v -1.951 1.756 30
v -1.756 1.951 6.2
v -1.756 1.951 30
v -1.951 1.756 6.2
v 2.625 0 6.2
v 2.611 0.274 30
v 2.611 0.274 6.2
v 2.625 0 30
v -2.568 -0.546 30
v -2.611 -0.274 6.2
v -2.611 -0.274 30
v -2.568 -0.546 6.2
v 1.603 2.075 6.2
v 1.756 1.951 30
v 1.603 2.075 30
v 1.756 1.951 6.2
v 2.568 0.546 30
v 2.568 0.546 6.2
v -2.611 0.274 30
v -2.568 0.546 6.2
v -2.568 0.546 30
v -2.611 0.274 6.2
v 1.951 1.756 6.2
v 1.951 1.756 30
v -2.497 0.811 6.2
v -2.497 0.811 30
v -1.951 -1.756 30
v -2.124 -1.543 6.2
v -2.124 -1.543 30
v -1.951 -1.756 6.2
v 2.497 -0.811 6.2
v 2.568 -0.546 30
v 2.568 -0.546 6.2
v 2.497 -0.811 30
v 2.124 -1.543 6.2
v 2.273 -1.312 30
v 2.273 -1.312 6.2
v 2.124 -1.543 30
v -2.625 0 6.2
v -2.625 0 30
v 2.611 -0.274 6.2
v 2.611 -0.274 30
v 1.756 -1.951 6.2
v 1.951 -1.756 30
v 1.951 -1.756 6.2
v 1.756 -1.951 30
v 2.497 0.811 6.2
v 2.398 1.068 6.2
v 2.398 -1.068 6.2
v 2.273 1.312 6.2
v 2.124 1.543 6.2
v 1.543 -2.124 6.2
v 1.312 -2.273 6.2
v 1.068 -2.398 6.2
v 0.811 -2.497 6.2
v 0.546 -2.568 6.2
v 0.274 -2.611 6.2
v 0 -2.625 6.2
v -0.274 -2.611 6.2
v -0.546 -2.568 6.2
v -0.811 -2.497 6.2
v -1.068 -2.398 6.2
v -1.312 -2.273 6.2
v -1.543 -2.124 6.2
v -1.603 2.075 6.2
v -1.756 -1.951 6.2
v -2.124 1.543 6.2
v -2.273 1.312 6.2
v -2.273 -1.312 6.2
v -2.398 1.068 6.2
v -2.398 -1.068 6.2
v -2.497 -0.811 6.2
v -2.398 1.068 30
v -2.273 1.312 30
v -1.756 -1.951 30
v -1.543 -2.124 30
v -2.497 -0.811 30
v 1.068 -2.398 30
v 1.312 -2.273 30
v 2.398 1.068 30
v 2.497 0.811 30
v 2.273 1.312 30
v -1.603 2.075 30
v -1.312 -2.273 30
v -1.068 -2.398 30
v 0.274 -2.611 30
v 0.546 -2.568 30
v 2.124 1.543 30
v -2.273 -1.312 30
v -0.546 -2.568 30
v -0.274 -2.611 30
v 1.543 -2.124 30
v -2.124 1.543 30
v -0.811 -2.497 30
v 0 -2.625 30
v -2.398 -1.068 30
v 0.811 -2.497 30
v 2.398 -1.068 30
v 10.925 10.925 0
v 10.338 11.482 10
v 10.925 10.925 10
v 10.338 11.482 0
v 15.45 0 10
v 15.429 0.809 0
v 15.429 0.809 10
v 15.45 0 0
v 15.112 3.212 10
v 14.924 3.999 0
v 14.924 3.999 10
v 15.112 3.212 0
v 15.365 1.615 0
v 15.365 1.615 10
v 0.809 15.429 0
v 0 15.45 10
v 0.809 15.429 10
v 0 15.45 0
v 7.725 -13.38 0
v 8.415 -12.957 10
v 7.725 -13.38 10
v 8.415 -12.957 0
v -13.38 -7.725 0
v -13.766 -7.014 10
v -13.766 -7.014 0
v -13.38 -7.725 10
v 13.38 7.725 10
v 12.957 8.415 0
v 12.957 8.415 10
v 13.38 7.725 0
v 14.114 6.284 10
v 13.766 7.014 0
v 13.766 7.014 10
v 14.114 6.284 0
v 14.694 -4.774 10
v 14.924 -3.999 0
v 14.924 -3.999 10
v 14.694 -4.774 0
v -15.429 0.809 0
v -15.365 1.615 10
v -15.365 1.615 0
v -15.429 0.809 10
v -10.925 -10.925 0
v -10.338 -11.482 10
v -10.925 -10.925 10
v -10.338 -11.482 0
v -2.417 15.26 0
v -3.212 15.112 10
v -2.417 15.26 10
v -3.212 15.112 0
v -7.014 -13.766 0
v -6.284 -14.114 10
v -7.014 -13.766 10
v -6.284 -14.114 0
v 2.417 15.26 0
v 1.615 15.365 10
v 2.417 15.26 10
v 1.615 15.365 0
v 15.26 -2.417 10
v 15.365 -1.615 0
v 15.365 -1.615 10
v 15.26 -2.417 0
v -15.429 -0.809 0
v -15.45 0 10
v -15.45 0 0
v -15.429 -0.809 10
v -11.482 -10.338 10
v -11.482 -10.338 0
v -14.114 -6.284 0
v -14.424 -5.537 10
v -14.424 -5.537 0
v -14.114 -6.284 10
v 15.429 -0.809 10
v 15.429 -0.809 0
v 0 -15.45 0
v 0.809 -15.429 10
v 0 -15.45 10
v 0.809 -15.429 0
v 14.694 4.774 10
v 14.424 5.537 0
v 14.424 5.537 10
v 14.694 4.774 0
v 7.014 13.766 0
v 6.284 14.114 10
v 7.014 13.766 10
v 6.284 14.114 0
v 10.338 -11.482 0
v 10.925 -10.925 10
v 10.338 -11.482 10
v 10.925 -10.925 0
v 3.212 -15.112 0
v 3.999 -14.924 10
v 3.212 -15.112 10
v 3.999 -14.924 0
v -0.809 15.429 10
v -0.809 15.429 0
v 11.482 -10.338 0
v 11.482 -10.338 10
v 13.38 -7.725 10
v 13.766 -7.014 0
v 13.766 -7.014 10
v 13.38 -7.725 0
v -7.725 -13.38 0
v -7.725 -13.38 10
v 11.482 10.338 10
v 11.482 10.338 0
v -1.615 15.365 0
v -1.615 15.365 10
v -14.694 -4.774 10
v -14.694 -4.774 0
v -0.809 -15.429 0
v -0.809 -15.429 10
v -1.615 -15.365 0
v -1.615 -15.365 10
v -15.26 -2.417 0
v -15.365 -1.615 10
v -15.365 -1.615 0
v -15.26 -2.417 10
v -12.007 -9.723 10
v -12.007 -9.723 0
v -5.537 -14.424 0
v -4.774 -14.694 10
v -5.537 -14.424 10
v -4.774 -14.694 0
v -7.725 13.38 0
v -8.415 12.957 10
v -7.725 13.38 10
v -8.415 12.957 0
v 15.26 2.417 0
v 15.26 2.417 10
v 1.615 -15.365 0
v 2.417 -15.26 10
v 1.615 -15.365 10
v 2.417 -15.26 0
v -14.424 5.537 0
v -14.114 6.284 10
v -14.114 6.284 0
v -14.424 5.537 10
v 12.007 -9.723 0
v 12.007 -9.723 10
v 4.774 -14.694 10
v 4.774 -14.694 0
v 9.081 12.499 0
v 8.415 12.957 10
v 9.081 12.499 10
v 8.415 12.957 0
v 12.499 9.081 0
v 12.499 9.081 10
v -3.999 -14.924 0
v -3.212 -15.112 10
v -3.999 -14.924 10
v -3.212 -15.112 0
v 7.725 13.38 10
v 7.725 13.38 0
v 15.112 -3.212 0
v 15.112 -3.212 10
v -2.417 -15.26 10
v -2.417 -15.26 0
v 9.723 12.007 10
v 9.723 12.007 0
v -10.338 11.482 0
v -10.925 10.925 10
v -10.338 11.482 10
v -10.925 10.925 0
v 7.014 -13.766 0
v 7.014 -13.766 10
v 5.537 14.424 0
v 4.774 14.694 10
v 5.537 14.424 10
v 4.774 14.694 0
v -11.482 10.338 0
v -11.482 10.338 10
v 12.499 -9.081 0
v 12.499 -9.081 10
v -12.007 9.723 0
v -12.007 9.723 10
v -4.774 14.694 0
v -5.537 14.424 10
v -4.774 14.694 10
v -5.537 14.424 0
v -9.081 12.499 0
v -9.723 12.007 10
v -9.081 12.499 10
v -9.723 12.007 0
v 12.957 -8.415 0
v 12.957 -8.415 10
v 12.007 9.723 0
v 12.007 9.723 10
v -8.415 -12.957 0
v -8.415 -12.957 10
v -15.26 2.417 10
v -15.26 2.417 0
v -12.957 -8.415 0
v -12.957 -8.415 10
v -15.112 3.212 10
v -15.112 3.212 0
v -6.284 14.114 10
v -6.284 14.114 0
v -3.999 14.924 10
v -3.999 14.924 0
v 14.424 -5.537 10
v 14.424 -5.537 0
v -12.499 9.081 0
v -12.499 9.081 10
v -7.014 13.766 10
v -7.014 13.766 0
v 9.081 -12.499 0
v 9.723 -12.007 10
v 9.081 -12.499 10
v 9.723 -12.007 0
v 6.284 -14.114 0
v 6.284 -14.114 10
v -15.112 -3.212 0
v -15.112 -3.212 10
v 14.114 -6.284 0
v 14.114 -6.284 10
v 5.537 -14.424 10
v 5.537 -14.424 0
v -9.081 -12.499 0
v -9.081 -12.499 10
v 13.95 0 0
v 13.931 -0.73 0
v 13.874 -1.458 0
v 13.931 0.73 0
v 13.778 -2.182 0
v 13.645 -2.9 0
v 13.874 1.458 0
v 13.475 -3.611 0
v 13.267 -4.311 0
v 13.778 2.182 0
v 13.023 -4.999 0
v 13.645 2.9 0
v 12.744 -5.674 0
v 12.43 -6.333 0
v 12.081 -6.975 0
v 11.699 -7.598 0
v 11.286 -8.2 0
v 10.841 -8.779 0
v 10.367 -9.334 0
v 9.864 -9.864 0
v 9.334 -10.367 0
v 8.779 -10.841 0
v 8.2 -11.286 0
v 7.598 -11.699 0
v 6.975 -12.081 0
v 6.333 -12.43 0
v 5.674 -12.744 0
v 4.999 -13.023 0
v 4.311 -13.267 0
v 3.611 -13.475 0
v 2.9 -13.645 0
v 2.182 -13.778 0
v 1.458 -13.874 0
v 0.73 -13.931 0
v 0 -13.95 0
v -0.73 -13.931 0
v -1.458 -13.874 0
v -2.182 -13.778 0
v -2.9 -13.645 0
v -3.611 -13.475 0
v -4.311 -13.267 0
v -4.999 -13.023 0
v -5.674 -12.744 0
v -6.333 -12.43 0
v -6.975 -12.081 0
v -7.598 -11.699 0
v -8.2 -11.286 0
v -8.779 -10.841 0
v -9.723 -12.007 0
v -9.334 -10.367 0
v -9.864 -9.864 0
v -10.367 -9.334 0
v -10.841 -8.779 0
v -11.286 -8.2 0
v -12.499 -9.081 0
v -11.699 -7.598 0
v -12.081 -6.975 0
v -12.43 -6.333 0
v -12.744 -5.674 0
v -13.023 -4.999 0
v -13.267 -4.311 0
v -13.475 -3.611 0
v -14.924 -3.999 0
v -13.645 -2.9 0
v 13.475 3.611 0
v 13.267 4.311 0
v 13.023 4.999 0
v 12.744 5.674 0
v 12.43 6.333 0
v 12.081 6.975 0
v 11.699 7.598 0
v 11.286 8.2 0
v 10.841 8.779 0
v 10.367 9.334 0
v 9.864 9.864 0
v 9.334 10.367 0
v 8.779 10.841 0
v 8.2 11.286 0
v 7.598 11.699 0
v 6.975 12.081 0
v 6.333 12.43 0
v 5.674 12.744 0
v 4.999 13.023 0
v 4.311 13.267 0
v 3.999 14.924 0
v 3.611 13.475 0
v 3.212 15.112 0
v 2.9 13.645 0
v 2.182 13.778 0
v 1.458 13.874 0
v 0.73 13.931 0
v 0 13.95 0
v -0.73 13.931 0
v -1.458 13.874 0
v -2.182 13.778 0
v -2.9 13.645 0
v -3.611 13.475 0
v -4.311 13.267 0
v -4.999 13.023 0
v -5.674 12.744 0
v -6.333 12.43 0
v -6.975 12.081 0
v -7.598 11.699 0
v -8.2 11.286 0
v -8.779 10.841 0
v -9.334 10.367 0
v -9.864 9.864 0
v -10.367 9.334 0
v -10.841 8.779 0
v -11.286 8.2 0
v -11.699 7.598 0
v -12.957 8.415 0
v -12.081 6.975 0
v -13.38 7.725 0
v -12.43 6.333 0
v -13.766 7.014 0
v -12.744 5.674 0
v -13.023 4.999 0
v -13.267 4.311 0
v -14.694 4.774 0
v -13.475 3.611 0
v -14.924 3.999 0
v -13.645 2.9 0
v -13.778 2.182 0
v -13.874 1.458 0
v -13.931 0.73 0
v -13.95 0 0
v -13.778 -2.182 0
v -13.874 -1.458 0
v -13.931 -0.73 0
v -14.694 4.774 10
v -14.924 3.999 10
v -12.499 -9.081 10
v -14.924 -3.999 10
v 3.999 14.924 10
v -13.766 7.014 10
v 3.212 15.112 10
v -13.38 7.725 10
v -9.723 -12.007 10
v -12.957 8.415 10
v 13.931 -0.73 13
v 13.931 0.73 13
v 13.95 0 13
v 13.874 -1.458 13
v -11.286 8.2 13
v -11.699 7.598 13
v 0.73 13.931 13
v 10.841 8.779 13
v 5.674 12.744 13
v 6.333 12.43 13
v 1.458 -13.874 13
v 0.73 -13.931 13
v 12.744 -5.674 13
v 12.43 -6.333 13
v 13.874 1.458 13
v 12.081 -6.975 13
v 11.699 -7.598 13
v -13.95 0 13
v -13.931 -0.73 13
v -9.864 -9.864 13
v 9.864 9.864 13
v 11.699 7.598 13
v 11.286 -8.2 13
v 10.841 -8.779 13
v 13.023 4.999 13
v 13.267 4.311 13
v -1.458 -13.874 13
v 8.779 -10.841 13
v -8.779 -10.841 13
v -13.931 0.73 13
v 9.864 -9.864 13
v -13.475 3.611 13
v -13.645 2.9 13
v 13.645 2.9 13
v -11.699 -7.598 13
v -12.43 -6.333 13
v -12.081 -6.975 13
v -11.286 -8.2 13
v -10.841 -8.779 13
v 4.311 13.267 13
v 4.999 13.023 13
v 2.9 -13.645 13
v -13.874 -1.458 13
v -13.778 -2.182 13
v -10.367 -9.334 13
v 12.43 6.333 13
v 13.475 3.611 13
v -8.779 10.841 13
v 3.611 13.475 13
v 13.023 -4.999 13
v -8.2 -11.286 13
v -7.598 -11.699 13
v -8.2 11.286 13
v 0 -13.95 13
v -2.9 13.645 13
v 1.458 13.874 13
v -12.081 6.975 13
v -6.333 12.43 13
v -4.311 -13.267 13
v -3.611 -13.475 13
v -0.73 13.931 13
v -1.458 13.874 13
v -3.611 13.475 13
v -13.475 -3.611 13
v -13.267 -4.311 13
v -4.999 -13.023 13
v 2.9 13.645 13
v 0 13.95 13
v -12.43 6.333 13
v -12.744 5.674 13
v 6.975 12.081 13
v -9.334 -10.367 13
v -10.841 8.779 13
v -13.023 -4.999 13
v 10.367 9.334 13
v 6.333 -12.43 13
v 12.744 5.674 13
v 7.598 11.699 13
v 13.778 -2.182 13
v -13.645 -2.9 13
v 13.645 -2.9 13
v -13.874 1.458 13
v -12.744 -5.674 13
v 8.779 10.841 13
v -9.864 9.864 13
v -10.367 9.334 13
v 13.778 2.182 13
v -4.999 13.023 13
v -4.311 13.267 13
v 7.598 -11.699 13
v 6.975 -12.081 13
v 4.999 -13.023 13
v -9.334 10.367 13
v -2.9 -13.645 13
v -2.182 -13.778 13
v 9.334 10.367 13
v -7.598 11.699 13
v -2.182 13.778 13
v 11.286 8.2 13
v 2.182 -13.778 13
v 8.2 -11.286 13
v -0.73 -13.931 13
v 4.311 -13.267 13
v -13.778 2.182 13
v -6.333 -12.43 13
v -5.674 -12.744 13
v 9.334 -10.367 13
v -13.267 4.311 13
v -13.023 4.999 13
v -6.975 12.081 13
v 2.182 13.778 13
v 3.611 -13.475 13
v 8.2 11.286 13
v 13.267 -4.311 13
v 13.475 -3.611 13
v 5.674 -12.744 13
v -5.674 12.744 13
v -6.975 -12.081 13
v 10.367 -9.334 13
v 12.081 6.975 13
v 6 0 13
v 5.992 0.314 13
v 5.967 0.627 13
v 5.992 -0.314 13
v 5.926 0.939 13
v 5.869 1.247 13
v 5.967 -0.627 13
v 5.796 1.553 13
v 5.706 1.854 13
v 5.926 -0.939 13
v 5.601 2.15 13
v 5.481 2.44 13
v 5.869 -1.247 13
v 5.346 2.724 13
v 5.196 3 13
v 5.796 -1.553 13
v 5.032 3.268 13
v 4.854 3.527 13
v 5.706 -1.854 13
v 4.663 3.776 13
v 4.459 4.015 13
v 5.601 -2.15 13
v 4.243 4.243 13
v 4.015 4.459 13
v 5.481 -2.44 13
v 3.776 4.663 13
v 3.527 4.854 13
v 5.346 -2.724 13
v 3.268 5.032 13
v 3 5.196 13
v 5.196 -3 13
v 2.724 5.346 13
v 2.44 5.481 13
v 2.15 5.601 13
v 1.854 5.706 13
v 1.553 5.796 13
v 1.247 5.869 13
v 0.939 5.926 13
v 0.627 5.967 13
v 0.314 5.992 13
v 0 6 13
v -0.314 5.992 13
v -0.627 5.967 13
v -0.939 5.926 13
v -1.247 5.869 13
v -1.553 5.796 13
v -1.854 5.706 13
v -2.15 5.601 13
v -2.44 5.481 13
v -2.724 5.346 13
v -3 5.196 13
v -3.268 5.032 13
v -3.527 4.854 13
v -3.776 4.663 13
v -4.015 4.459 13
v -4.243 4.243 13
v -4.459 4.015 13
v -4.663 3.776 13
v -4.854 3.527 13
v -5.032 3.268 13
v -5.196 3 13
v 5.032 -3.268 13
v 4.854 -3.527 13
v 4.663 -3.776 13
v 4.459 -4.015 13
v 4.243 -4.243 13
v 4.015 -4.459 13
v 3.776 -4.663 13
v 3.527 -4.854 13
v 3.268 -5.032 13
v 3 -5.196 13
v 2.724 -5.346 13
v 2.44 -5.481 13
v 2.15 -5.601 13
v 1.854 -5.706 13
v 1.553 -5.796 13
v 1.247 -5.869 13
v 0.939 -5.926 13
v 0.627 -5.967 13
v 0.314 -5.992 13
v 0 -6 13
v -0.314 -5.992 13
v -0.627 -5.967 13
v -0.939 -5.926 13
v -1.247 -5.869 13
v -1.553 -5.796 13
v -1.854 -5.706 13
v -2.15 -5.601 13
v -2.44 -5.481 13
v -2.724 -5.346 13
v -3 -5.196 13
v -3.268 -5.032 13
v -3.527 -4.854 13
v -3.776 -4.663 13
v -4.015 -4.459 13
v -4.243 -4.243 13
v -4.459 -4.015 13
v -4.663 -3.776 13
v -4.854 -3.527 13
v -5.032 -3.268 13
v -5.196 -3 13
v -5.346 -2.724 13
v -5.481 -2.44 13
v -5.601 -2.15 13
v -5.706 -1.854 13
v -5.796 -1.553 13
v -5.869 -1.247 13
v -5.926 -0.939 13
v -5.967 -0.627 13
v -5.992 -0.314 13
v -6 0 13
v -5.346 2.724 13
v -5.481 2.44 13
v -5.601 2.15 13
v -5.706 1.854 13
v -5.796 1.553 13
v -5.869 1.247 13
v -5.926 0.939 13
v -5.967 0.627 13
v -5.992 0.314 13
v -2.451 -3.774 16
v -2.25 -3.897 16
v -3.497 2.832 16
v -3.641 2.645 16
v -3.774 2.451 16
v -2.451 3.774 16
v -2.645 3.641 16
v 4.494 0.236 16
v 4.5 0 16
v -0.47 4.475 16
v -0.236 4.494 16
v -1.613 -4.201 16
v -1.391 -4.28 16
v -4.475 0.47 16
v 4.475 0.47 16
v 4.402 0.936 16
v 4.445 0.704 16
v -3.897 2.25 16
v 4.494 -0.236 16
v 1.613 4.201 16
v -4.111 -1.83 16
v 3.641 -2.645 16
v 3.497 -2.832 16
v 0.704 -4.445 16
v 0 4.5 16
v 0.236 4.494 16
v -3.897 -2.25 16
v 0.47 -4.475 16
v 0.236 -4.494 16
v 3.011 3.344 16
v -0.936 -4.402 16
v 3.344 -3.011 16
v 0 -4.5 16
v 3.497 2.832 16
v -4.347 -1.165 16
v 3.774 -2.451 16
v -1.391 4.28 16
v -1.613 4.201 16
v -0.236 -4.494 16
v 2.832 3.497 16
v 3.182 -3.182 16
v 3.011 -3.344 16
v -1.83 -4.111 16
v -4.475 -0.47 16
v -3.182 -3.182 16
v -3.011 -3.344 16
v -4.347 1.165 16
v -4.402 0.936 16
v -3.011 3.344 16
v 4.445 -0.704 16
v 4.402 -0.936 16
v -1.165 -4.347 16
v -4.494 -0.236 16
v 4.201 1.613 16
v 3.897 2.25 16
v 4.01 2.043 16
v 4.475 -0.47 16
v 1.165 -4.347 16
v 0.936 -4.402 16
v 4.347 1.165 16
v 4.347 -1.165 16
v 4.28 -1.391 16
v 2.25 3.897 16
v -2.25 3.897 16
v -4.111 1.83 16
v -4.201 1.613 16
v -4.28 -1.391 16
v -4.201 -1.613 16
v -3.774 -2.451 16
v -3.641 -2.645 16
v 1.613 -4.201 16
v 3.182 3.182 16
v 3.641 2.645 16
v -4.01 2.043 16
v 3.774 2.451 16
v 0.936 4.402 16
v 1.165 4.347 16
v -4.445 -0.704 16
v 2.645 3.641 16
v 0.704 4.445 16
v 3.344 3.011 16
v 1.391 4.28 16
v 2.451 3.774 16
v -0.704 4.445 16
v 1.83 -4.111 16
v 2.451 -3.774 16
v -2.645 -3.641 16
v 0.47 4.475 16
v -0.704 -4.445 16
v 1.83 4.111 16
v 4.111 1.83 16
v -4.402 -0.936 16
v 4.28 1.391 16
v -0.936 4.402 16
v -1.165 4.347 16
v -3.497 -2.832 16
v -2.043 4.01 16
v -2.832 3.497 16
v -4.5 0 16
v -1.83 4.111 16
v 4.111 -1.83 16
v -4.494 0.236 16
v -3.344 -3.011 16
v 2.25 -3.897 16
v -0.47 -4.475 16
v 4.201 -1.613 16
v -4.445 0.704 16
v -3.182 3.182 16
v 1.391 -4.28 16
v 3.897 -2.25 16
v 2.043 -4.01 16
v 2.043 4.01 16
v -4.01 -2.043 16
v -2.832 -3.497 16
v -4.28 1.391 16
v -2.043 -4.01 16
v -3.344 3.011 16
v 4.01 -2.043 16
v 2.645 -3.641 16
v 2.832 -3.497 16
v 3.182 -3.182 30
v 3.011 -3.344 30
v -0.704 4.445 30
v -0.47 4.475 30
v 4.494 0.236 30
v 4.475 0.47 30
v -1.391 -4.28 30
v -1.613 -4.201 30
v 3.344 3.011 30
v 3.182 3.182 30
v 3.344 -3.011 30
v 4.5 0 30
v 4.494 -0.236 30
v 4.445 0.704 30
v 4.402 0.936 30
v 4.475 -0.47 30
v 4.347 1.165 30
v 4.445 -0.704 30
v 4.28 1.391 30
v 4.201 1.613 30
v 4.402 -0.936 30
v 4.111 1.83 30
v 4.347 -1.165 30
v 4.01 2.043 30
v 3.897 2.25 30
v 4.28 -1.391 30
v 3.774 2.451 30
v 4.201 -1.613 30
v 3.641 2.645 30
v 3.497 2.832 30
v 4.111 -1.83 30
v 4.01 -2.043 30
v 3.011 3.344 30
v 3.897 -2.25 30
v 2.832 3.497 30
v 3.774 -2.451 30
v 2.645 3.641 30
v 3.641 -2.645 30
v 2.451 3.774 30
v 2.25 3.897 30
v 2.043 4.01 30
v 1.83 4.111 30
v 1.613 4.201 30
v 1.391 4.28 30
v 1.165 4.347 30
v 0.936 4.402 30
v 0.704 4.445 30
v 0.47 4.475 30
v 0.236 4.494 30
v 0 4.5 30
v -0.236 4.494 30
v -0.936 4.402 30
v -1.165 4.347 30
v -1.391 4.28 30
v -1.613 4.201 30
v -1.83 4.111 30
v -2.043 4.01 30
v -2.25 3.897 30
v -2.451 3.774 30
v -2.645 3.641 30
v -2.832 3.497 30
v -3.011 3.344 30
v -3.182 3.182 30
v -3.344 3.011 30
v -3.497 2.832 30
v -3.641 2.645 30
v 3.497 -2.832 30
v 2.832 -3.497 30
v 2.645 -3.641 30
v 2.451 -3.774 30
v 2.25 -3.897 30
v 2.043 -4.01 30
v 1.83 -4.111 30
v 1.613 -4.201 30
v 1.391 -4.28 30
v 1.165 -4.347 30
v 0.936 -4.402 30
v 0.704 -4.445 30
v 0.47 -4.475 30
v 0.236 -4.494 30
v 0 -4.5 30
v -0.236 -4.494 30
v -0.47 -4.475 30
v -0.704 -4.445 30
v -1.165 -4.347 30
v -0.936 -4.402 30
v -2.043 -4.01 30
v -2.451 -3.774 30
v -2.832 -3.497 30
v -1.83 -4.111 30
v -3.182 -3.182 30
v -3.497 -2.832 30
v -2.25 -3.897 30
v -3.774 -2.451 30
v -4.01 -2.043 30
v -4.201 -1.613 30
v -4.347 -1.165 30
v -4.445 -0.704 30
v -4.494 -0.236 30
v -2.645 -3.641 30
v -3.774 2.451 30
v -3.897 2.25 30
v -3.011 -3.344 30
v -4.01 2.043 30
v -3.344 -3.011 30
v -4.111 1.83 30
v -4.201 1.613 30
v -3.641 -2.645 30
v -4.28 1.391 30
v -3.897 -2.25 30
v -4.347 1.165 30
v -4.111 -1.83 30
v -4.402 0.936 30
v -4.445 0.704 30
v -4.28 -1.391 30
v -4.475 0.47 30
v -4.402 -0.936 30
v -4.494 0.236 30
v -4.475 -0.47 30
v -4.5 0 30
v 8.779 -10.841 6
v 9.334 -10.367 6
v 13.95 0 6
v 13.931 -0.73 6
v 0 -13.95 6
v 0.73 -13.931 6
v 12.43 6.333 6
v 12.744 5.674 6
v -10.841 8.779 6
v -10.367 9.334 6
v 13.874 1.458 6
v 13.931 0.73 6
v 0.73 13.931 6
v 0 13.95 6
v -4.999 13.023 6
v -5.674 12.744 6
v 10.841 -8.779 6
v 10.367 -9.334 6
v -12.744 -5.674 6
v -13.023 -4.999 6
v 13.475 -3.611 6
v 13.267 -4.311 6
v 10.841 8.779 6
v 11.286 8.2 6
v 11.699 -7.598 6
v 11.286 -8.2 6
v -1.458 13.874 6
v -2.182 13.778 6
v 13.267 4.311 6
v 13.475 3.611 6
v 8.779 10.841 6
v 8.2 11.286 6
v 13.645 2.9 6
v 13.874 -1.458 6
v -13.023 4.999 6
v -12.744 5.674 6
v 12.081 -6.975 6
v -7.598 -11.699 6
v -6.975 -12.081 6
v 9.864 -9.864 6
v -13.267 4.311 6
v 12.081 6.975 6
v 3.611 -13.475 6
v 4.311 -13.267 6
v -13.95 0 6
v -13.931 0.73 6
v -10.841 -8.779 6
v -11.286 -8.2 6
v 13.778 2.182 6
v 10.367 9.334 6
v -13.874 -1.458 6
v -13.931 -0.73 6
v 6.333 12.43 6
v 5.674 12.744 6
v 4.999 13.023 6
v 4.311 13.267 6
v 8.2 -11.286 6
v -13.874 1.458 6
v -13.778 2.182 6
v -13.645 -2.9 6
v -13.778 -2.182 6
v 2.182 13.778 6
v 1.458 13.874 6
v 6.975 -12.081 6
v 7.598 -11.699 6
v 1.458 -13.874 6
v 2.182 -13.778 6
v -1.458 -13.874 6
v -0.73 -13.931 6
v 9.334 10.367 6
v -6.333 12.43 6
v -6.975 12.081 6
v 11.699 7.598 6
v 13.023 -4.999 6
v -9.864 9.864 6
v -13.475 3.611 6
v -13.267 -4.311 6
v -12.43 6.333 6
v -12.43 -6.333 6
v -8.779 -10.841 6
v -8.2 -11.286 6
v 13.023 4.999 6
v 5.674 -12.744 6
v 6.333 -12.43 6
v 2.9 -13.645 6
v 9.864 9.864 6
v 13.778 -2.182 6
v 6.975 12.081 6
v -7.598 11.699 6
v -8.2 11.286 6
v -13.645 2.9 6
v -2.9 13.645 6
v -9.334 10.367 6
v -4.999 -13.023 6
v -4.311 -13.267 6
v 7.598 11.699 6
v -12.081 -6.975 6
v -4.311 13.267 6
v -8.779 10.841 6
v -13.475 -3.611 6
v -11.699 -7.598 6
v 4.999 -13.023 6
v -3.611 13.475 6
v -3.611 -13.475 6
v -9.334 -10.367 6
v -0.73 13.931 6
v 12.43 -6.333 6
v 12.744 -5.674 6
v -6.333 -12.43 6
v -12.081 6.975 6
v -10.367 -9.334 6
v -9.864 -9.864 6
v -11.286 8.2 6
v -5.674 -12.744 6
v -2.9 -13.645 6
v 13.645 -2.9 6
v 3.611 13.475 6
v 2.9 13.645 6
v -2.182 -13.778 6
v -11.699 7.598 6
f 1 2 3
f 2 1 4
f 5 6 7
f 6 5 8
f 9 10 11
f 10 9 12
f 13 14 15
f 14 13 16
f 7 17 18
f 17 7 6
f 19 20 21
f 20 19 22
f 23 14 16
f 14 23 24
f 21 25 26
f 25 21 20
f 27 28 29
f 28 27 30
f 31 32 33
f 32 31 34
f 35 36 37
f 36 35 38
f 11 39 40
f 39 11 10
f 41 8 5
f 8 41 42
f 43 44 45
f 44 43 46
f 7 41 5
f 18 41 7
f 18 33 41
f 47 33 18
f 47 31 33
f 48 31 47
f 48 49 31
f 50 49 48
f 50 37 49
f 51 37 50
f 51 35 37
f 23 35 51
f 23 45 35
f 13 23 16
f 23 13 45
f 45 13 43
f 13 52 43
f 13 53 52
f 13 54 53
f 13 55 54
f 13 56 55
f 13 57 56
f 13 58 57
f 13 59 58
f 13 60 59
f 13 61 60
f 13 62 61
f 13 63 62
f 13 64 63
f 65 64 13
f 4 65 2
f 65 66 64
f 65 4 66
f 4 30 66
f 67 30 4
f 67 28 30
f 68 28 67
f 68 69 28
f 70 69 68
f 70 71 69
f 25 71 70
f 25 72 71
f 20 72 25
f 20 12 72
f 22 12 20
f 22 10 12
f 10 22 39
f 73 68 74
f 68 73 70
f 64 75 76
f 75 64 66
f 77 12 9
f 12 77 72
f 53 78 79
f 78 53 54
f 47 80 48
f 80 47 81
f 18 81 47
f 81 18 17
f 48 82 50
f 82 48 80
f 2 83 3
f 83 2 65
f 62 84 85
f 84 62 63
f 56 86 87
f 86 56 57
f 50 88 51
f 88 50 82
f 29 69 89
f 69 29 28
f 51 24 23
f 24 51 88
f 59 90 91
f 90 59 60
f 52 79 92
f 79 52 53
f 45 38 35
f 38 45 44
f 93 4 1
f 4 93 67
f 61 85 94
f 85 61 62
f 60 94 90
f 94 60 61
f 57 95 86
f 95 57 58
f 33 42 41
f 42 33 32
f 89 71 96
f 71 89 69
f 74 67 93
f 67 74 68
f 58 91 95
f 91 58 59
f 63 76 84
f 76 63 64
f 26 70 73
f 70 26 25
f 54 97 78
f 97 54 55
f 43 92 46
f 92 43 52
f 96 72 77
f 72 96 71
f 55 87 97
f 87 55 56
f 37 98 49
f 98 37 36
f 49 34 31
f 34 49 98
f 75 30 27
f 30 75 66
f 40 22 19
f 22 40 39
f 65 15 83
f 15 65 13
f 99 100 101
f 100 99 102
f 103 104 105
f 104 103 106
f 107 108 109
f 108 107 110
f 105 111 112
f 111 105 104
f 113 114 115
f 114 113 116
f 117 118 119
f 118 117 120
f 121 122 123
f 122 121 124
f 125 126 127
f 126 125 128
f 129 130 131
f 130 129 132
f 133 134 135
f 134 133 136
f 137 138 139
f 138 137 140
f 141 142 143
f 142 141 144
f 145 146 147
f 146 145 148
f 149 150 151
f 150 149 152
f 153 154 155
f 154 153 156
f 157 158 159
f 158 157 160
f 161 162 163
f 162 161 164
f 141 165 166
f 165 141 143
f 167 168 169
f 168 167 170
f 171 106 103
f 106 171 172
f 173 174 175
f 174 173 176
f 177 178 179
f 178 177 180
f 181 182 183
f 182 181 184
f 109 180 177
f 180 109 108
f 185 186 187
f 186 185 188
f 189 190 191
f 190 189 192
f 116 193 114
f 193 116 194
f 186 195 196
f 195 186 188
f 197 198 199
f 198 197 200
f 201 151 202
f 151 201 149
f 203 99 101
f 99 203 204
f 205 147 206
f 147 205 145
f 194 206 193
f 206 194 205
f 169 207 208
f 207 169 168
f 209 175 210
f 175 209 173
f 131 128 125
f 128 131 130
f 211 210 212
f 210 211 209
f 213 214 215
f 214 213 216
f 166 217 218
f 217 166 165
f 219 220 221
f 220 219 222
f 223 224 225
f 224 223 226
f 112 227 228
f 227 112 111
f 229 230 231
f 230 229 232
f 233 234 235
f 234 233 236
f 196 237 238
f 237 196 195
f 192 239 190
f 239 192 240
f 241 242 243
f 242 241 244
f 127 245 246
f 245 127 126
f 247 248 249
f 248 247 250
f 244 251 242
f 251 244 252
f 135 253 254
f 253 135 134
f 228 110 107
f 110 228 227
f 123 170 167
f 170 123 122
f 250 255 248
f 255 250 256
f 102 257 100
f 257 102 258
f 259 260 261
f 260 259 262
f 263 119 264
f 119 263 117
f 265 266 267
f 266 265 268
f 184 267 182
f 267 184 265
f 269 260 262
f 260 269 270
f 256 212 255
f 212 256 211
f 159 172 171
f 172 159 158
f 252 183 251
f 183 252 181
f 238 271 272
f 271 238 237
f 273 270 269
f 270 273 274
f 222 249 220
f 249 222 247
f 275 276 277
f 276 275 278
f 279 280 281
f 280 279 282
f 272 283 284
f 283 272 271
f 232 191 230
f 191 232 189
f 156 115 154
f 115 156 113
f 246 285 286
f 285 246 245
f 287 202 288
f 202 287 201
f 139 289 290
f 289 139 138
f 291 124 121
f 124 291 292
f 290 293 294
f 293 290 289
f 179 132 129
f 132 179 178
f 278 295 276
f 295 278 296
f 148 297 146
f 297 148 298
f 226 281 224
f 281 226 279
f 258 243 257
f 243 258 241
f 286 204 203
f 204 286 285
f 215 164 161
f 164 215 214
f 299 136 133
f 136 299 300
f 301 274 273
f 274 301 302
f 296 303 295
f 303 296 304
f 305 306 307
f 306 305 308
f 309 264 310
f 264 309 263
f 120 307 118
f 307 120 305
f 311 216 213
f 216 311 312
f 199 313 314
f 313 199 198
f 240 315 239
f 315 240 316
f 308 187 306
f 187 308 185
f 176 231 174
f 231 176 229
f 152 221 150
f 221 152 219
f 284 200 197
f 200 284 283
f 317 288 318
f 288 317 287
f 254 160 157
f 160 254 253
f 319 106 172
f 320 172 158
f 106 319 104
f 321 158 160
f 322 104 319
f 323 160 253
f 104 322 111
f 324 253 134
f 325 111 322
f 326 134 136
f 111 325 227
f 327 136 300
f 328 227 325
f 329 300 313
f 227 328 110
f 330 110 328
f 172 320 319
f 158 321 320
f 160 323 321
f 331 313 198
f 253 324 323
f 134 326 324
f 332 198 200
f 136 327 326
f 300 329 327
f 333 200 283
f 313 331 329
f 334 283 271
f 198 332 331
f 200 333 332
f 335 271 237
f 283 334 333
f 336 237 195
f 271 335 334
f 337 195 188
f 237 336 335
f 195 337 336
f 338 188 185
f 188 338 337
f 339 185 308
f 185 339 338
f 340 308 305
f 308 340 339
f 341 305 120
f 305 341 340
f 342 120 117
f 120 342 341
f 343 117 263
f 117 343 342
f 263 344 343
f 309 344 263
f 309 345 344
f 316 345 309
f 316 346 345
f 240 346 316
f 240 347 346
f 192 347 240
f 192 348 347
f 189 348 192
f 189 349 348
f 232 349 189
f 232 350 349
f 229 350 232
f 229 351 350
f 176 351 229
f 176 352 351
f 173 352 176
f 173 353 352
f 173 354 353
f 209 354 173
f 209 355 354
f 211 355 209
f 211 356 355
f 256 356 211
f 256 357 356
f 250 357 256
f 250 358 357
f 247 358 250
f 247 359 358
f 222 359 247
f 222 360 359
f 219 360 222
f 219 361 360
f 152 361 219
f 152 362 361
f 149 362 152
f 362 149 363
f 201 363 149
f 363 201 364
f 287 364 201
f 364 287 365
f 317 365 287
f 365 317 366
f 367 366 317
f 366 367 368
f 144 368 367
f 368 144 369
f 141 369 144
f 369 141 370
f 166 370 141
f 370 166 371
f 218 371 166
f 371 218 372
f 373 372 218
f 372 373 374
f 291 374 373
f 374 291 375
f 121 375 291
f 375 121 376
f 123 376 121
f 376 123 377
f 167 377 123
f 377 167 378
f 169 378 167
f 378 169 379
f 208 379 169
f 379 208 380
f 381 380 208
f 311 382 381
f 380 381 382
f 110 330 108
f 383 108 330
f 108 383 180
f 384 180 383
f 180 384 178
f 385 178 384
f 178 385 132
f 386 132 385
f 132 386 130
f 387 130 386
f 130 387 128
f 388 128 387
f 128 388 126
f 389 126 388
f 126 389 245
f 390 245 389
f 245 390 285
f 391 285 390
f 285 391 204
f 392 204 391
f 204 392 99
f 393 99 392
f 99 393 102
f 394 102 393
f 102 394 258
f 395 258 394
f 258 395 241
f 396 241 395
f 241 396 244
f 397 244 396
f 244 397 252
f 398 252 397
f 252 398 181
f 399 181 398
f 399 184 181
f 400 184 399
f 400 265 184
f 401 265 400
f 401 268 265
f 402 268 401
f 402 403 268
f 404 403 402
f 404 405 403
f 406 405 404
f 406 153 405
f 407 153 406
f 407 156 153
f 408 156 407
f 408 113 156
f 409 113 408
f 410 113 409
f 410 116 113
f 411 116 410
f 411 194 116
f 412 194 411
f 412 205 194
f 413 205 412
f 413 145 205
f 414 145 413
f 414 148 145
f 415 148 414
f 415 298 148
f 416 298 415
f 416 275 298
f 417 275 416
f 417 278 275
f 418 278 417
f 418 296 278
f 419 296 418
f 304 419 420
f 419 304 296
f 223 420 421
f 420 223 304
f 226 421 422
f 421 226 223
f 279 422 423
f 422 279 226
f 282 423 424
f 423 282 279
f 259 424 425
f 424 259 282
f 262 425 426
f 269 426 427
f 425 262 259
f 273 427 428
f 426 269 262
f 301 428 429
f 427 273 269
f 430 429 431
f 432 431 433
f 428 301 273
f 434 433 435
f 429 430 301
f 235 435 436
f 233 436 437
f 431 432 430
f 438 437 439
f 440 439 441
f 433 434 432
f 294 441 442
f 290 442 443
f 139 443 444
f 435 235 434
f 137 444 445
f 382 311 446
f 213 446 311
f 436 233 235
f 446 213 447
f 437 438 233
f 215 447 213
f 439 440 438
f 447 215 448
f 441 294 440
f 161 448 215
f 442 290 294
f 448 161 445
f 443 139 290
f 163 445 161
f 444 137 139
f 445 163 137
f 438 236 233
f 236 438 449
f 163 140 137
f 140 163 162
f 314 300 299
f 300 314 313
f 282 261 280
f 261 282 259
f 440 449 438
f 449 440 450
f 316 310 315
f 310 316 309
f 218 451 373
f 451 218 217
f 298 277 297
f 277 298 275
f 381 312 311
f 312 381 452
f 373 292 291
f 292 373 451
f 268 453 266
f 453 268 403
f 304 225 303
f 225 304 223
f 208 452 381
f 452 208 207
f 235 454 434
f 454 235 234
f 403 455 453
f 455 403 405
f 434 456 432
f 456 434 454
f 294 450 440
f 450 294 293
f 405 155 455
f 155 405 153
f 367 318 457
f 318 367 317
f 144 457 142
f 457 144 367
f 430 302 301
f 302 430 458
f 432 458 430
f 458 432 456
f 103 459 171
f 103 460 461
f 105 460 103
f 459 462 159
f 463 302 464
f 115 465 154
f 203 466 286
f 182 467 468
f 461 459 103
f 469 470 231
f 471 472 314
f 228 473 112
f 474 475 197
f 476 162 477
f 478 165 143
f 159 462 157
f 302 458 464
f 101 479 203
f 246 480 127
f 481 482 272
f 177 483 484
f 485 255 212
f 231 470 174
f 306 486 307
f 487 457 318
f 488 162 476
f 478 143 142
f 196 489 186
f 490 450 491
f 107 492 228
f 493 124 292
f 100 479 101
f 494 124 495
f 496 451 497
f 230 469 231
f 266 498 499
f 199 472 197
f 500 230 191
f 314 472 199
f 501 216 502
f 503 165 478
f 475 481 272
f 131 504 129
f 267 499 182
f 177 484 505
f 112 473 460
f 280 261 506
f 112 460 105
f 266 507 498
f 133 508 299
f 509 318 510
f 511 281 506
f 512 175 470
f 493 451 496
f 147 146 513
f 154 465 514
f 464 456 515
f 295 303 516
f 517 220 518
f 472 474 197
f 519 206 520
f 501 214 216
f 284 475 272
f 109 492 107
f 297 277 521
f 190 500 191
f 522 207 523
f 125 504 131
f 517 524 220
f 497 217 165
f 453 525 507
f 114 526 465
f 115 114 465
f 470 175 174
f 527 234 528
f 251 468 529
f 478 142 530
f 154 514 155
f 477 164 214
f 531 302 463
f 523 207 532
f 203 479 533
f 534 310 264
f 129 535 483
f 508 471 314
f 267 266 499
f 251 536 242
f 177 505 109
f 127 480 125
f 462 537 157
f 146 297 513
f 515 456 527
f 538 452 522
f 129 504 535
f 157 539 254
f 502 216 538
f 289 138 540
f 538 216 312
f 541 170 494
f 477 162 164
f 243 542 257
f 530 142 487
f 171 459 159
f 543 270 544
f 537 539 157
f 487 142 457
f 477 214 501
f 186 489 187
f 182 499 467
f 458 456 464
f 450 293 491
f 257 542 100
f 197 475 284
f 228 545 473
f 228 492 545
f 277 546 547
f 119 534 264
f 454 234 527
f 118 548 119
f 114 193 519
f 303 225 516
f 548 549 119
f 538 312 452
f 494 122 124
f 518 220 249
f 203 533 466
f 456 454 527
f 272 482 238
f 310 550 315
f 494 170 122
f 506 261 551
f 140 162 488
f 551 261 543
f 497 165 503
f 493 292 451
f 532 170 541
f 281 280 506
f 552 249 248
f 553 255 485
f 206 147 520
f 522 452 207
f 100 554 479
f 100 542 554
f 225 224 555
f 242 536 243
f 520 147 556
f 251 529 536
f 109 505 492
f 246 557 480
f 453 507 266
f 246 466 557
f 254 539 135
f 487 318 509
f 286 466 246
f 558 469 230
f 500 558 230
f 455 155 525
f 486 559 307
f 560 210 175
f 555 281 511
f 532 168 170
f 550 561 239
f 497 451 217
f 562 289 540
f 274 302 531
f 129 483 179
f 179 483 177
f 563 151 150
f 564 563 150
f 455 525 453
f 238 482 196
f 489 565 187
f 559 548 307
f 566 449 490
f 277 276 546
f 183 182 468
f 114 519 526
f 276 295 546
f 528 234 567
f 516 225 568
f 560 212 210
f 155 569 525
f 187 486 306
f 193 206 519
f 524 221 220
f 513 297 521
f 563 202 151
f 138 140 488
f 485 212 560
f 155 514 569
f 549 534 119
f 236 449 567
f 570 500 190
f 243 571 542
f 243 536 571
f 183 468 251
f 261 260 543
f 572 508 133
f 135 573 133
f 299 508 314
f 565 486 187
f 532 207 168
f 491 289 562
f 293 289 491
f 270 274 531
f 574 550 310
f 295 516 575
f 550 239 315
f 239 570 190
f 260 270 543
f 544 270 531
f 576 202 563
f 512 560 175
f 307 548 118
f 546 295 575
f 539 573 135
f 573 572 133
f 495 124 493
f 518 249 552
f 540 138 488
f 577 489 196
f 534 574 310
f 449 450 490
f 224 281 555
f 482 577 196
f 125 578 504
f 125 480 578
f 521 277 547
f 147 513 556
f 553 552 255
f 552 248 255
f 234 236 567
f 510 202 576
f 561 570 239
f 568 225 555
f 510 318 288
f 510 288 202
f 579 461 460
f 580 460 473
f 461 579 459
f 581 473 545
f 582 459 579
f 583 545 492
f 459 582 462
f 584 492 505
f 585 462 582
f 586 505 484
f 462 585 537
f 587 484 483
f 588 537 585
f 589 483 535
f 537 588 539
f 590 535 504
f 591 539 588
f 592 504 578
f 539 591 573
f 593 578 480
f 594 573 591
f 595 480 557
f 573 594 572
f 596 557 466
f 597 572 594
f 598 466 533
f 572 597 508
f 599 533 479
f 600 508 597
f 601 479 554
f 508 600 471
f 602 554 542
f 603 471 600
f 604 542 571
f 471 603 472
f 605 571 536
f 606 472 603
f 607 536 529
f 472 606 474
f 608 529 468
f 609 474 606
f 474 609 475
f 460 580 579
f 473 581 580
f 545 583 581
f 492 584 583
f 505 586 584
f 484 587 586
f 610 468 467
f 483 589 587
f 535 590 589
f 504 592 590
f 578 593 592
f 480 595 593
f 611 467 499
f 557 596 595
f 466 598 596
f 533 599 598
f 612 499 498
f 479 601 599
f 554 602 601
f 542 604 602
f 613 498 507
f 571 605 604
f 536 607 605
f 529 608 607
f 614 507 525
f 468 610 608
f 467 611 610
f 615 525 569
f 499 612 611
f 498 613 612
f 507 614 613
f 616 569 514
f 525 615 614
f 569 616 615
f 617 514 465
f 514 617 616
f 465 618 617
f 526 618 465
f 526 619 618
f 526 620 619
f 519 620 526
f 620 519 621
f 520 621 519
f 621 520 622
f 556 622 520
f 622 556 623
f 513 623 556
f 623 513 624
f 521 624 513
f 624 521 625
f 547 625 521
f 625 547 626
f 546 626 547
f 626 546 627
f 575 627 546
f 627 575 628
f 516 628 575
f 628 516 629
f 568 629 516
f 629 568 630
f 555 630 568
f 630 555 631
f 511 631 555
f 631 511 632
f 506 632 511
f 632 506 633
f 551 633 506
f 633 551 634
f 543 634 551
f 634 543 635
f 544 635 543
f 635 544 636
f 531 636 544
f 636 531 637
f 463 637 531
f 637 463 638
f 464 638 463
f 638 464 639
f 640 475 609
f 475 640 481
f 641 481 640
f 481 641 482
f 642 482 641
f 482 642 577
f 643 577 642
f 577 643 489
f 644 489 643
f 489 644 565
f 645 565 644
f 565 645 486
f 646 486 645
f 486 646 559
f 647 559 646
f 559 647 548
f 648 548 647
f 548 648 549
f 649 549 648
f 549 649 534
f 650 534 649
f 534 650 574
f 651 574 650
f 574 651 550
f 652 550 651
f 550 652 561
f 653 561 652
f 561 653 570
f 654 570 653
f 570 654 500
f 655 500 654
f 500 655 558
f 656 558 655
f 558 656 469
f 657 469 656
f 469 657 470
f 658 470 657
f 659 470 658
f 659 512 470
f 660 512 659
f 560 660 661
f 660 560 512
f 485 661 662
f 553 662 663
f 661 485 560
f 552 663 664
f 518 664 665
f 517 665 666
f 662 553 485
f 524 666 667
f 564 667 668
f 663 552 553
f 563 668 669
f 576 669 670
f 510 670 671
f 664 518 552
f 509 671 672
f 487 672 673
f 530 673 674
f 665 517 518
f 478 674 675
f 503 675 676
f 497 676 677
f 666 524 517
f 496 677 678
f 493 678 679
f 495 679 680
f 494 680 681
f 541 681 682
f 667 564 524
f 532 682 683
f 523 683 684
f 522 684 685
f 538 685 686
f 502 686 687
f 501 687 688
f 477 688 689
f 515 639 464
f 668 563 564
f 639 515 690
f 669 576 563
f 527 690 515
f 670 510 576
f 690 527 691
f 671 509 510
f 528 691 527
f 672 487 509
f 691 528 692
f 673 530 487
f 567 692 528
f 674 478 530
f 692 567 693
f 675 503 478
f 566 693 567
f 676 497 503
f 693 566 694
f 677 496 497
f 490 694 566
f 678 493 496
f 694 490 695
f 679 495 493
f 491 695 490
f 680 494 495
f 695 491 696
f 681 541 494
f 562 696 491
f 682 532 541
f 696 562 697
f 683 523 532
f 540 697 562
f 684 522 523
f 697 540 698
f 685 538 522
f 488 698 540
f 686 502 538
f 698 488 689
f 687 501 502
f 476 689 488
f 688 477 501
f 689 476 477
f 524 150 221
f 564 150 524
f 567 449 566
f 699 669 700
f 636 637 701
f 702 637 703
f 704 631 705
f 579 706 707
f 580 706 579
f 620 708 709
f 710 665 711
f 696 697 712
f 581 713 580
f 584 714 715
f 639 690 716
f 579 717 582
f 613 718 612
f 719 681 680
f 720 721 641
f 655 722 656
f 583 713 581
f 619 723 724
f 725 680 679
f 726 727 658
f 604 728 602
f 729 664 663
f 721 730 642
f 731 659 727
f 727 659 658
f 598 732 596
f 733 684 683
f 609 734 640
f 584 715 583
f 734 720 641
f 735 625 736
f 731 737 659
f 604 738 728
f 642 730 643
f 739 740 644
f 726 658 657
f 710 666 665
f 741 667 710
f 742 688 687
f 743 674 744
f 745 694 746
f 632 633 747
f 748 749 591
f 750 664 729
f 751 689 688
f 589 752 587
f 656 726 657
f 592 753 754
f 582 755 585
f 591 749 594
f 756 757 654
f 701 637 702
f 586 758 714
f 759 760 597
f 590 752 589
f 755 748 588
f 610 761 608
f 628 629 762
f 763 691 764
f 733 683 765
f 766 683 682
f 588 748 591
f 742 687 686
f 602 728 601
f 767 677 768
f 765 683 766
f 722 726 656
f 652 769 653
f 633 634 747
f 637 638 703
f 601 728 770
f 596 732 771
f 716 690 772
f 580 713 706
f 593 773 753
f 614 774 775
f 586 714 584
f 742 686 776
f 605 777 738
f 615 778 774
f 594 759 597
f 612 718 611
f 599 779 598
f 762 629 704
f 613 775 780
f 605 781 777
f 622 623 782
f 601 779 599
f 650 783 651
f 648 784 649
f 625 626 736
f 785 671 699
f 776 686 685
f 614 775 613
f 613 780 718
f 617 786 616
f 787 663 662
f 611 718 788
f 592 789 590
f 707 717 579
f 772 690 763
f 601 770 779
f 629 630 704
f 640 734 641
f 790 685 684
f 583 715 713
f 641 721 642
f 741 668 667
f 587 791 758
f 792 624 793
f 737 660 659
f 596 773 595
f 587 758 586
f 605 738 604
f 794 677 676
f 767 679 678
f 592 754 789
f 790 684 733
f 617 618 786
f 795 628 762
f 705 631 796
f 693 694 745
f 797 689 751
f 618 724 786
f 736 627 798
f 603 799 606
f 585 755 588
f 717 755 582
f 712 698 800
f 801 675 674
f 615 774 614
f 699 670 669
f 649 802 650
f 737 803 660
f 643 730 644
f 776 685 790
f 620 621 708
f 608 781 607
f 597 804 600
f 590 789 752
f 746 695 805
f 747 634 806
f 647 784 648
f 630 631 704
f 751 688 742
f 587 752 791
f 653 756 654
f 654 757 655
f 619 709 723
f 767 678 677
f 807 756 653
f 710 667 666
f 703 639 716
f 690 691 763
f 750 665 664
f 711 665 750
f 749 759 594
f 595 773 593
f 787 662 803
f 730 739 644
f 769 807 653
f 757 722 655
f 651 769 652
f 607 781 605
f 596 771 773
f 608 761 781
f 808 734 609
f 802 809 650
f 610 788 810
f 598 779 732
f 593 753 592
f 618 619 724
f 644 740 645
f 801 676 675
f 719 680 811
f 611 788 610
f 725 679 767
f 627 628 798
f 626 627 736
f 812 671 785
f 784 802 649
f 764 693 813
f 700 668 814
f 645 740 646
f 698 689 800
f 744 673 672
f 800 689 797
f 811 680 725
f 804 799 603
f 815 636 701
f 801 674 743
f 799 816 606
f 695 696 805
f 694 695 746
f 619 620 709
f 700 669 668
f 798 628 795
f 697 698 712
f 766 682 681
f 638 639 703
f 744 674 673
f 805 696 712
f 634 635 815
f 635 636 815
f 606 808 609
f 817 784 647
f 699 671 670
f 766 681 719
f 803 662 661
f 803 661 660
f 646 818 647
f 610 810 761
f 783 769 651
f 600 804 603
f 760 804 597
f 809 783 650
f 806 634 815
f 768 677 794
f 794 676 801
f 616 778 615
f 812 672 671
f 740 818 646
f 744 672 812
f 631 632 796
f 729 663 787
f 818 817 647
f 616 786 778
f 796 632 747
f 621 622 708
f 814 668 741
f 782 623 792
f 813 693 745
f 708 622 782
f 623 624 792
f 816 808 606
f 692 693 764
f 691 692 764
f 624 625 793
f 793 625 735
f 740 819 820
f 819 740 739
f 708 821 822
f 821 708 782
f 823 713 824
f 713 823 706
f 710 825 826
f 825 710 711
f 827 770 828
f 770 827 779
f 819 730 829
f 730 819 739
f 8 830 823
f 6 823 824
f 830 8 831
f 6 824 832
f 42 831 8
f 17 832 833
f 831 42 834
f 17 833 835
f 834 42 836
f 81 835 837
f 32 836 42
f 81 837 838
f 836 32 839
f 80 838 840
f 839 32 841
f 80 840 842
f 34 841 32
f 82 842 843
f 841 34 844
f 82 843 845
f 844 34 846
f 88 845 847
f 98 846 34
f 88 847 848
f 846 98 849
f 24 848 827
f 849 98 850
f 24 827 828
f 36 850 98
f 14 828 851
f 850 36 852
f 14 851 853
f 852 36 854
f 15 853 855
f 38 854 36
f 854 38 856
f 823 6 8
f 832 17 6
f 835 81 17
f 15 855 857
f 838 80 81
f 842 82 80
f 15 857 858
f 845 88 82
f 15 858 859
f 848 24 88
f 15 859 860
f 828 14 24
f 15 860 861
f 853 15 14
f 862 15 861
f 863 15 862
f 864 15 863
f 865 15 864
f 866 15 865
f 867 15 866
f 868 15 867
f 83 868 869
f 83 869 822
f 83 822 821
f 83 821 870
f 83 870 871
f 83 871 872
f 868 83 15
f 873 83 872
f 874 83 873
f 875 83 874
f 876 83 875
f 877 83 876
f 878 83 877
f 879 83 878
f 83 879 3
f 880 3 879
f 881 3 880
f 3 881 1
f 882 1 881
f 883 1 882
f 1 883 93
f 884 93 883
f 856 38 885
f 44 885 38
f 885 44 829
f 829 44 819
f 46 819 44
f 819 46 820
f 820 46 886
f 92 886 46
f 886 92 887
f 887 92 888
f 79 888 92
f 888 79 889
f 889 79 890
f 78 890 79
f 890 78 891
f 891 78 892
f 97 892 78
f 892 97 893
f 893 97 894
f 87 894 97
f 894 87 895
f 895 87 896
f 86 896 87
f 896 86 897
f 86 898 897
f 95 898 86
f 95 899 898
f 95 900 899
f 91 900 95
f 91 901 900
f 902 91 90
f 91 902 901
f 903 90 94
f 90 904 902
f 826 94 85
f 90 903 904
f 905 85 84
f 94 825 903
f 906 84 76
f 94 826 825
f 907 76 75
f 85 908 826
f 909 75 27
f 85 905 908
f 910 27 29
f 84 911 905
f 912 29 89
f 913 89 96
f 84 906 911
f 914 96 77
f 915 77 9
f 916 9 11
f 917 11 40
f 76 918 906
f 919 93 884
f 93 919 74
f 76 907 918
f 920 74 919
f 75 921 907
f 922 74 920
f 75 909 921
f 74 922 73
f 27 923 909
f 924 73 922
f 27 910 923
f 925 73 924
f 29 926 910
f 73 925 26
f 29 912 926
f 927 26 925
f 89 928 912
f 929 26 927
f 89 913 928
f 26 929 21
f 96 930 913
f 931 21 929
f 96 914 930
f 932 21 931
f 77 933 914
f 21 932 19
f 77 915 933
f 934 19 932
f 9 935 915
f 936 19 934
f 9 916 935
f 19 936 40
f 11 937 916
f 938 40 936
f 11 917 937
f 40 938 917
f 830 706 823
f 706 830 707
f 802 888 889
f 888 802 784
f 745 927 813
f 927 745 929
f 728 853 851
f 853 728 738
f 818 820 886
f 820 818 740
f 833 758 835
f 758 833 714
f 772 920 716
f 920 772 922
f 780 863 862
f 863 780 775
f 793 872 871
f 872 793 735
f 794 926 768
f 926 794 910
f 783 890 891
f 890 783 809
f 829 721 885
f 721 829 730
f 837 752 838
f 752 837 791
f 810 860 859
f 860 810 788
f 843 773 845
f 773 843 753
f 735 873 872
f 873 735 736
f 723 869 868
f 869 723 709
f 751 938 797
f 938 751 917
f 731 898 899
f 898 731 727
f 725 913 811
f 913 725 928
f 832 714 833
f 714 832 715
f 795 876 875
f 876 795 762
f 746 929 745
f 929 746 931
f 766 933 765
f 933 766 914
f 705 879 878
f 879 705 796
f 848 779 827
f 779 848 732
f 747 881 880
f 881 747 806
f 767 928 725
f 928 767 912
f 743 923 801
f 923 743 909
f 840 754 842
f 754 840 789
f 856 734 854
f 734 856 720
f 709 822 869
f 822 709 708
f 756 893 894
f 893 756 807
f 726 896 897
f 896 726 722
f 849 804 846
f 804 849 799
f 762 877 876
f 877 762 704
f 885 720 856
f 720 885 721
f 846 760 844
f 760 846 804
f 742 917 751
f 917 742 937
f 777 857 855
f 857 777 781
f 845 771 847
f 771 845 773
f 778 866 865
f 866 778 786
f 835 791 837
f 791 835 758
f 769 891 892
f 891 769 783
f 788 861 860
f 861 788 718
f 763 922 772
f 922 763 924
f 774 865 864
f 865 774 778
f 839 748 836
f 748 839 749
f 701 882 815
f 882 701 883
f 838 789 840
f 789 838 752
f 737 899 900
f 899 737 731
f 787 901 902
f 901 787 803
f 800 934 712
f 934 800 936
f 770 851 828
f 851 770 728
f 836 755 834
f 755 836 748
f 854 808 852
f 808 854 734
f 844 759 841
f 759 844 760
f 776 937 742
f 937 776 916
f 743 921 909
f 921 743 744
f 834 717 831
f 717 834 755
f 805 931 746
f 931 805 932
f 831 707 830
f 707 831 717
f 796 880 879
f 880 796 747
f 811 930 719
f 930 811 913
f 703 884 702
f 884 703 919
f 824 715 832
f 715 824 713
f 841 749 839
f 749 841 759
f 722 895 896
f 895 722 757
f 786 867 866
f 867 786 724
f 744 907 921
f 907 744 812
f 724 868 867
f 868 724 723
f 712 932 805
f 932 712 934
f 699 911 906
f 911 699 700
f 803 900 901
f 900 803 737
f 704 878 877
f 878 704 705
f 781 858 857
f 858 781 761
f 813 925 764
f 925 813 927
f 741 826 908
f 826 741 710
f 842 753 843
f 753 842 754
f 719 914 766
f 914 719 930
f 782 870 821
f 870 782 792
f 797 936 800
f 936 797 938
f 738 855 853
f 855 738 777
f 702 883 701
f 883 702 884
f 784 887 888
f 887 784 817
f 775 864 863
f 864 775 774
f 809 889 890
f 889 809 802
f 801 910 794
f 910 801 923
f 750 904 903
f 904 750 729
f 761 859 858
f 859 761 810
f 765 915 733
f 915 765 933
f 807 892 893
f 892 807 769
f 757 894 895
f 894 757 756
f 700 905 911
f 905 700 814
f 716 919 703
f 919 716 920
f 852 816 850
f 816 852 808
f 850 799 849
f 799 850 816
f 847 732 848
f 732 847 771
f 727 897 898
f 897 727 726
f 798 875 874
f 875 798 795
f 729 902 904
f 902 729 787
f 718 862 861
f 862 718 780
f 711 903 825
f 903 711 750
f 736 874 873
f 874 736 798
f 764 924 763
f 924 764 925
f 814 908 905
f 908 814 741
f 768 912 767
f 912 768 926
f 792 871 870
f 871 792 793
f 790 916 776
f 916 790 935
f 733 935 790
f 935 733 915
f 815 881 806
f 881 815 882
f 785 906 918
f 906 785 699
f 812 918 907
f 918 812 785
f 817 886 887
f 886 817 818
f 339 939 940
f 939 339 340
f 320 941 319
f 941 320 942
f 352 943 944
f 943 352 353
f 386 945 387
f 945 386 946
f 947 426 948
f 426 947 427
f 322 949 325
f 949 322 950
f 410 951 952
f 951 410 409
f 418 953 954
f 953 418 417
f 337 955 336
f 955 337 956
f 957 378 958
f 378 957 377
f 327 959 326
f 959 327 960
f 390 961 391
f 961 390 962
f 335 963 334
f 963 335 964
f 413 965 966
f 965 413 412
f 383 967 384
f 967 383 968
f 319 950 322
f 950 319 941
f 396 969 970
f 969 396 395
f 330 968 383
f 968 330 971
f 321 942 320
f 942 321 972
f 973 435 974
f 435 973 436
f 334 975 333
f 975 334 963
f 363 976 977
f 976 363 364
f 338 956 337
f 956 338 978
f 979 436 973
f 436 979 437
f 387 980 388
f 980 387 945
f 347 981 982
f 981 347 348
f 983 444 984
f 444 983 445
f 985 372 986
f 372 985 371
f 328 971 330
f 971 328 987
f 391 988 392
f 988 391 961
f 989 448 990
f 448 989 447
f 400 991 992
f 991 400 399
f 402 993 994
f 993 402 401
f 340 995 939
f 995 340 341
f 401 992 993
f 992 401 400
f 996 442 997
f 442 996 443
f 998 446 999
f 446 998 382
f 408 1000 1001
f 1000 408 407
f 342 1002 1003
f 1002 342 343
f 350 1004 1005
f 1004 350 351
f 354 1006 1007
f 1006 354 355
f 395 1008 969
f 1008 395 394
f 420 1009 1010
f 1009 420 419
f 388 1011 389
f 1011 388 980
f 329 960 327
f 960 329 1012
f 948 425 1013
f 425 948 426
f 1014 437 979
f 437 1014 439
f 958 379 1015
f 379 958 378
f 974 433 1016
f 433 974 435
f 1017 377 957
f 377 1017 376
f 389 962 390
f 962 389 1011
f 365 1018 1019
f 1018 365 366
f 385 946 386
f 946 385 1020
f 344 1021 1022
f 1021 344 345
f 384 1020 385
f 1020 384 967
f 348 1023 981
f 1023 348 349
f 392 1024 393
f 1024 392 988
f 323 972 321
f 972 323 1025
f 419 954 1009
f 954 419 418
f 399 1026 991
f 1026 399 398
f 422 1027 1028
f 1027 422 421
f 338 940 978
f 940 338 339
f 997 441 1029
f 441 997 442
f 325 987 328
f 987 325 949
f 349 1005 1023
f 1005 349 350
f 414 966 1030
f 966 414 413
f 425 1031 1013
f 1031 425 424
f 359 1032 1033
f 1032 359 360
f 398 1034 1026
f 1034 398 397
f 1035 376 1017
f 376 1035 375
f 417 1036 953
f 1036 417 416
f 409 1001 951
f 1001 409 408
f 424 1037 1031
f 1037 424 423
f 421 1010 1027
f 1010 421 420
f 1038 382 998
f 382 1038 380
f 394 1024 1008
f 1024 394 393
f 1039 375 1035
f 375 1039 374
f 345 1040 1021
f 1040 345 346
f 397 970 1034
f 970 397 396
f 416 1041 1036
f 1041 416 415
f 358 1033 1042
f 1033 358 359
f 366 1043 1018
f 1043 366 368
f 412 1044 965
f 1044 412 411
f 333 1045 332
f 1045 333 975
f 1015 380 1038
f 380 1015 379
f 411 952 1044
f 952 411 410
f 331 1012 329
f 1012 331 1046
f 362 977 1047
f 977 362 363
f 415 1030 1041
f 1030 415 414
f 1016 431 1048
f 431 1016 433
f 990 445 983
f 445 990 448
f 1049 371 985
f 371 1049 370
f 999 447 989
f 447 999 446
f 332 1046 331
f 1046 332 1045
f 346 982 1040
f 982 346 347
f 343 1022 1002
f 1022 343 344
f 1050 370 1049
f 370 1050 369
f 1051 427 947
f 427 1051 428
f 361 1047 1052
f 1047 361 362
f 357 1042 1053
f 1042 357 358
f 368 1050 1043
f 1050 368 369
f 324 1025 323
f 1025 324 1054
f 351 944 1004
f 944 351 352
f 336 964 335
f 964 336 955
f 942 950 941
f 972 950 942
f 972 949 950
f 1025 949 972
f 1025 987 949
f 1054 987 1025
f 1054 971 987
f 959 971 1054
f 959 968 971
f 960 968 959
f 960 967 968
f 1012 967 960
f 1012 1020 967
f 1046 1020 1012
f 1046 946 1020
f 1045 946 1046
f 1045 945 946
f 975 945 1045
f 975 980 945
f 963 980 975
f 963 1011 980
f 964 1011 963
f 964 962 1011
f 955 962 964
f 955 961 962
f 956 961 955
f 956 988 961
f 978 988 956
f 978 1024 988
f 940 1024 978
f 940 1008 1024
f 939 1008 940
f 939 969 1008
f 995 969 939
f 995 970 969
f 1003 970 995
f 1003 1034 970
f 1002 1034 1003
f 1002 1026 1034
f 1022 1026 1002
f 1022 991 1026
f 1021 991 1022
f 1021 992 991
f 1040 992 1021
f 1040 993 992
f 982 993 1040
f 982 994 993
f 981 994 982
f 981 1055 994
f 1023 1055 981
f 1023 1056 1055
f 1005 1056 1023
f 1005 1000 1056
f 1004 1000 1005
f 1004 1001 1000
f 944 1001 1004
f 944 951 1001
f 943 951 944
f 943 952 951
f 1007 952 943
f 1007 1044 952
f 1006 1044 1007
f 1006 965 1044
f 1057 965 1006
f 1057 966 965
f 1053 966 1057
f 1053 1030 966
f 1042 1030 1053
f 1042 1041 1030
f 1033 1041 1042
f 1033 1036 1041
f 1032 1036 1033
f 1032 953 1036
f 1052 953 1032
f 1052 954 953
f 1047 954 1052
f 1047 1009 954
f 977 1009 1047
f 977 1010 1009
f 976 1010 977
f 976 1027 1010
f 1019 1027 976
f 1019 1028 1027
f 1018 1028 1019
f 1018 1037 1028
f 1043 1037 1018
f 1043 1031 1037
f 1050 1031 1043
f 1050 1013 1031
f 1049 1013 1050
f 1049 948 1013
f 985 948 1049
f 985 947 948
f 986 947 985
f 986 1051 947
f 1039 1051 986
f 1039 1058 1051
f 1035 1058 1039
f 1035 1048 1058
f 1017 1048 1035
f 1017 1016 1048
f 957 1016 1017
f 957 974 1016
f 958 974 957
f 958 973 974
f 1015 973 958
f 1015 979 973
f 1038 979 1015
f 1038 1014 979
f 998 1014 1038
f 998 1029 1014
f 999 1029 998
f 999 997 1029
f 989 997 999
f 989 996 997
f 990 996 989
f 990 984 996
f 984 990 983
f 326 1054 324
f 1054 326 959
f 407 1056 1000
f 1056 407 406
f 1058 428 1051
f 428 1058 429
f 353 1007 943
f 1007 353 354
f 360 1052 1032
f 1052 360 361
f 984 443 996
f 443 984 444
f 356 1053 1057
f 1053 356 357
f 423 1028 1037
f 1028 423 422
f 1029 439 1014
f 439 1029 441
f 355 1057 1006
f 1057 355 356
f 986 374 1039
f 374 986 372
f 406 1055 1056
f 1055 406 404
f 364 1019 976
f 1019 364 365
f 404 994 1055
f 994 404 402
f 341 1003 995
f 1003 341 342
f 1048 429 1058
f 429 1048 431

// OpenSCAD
$fn=120;

dh = 27.9;
osad = 5.25;

difference(){
union(){
cylinder(d = dh+3, h = 10);
translate([0, 0, 10]) cylinder(d1 = dh+3, d2 = dh, h=3);
translate([0, 0, 10+3]) cylinder(d1 = 9+3, d2 = 9, h=3);
cylinder(d = 9, h = 30);
}

    cylinder(d=dh, h = 6);
    translate([0, 0, 6.2]) difference(){
        cylinder(d = osad,  h = 50, $fn=60);
        translate([-osad/2, osad/2-0.55, 0]) cube([5, 5, 50]);
    }
}
